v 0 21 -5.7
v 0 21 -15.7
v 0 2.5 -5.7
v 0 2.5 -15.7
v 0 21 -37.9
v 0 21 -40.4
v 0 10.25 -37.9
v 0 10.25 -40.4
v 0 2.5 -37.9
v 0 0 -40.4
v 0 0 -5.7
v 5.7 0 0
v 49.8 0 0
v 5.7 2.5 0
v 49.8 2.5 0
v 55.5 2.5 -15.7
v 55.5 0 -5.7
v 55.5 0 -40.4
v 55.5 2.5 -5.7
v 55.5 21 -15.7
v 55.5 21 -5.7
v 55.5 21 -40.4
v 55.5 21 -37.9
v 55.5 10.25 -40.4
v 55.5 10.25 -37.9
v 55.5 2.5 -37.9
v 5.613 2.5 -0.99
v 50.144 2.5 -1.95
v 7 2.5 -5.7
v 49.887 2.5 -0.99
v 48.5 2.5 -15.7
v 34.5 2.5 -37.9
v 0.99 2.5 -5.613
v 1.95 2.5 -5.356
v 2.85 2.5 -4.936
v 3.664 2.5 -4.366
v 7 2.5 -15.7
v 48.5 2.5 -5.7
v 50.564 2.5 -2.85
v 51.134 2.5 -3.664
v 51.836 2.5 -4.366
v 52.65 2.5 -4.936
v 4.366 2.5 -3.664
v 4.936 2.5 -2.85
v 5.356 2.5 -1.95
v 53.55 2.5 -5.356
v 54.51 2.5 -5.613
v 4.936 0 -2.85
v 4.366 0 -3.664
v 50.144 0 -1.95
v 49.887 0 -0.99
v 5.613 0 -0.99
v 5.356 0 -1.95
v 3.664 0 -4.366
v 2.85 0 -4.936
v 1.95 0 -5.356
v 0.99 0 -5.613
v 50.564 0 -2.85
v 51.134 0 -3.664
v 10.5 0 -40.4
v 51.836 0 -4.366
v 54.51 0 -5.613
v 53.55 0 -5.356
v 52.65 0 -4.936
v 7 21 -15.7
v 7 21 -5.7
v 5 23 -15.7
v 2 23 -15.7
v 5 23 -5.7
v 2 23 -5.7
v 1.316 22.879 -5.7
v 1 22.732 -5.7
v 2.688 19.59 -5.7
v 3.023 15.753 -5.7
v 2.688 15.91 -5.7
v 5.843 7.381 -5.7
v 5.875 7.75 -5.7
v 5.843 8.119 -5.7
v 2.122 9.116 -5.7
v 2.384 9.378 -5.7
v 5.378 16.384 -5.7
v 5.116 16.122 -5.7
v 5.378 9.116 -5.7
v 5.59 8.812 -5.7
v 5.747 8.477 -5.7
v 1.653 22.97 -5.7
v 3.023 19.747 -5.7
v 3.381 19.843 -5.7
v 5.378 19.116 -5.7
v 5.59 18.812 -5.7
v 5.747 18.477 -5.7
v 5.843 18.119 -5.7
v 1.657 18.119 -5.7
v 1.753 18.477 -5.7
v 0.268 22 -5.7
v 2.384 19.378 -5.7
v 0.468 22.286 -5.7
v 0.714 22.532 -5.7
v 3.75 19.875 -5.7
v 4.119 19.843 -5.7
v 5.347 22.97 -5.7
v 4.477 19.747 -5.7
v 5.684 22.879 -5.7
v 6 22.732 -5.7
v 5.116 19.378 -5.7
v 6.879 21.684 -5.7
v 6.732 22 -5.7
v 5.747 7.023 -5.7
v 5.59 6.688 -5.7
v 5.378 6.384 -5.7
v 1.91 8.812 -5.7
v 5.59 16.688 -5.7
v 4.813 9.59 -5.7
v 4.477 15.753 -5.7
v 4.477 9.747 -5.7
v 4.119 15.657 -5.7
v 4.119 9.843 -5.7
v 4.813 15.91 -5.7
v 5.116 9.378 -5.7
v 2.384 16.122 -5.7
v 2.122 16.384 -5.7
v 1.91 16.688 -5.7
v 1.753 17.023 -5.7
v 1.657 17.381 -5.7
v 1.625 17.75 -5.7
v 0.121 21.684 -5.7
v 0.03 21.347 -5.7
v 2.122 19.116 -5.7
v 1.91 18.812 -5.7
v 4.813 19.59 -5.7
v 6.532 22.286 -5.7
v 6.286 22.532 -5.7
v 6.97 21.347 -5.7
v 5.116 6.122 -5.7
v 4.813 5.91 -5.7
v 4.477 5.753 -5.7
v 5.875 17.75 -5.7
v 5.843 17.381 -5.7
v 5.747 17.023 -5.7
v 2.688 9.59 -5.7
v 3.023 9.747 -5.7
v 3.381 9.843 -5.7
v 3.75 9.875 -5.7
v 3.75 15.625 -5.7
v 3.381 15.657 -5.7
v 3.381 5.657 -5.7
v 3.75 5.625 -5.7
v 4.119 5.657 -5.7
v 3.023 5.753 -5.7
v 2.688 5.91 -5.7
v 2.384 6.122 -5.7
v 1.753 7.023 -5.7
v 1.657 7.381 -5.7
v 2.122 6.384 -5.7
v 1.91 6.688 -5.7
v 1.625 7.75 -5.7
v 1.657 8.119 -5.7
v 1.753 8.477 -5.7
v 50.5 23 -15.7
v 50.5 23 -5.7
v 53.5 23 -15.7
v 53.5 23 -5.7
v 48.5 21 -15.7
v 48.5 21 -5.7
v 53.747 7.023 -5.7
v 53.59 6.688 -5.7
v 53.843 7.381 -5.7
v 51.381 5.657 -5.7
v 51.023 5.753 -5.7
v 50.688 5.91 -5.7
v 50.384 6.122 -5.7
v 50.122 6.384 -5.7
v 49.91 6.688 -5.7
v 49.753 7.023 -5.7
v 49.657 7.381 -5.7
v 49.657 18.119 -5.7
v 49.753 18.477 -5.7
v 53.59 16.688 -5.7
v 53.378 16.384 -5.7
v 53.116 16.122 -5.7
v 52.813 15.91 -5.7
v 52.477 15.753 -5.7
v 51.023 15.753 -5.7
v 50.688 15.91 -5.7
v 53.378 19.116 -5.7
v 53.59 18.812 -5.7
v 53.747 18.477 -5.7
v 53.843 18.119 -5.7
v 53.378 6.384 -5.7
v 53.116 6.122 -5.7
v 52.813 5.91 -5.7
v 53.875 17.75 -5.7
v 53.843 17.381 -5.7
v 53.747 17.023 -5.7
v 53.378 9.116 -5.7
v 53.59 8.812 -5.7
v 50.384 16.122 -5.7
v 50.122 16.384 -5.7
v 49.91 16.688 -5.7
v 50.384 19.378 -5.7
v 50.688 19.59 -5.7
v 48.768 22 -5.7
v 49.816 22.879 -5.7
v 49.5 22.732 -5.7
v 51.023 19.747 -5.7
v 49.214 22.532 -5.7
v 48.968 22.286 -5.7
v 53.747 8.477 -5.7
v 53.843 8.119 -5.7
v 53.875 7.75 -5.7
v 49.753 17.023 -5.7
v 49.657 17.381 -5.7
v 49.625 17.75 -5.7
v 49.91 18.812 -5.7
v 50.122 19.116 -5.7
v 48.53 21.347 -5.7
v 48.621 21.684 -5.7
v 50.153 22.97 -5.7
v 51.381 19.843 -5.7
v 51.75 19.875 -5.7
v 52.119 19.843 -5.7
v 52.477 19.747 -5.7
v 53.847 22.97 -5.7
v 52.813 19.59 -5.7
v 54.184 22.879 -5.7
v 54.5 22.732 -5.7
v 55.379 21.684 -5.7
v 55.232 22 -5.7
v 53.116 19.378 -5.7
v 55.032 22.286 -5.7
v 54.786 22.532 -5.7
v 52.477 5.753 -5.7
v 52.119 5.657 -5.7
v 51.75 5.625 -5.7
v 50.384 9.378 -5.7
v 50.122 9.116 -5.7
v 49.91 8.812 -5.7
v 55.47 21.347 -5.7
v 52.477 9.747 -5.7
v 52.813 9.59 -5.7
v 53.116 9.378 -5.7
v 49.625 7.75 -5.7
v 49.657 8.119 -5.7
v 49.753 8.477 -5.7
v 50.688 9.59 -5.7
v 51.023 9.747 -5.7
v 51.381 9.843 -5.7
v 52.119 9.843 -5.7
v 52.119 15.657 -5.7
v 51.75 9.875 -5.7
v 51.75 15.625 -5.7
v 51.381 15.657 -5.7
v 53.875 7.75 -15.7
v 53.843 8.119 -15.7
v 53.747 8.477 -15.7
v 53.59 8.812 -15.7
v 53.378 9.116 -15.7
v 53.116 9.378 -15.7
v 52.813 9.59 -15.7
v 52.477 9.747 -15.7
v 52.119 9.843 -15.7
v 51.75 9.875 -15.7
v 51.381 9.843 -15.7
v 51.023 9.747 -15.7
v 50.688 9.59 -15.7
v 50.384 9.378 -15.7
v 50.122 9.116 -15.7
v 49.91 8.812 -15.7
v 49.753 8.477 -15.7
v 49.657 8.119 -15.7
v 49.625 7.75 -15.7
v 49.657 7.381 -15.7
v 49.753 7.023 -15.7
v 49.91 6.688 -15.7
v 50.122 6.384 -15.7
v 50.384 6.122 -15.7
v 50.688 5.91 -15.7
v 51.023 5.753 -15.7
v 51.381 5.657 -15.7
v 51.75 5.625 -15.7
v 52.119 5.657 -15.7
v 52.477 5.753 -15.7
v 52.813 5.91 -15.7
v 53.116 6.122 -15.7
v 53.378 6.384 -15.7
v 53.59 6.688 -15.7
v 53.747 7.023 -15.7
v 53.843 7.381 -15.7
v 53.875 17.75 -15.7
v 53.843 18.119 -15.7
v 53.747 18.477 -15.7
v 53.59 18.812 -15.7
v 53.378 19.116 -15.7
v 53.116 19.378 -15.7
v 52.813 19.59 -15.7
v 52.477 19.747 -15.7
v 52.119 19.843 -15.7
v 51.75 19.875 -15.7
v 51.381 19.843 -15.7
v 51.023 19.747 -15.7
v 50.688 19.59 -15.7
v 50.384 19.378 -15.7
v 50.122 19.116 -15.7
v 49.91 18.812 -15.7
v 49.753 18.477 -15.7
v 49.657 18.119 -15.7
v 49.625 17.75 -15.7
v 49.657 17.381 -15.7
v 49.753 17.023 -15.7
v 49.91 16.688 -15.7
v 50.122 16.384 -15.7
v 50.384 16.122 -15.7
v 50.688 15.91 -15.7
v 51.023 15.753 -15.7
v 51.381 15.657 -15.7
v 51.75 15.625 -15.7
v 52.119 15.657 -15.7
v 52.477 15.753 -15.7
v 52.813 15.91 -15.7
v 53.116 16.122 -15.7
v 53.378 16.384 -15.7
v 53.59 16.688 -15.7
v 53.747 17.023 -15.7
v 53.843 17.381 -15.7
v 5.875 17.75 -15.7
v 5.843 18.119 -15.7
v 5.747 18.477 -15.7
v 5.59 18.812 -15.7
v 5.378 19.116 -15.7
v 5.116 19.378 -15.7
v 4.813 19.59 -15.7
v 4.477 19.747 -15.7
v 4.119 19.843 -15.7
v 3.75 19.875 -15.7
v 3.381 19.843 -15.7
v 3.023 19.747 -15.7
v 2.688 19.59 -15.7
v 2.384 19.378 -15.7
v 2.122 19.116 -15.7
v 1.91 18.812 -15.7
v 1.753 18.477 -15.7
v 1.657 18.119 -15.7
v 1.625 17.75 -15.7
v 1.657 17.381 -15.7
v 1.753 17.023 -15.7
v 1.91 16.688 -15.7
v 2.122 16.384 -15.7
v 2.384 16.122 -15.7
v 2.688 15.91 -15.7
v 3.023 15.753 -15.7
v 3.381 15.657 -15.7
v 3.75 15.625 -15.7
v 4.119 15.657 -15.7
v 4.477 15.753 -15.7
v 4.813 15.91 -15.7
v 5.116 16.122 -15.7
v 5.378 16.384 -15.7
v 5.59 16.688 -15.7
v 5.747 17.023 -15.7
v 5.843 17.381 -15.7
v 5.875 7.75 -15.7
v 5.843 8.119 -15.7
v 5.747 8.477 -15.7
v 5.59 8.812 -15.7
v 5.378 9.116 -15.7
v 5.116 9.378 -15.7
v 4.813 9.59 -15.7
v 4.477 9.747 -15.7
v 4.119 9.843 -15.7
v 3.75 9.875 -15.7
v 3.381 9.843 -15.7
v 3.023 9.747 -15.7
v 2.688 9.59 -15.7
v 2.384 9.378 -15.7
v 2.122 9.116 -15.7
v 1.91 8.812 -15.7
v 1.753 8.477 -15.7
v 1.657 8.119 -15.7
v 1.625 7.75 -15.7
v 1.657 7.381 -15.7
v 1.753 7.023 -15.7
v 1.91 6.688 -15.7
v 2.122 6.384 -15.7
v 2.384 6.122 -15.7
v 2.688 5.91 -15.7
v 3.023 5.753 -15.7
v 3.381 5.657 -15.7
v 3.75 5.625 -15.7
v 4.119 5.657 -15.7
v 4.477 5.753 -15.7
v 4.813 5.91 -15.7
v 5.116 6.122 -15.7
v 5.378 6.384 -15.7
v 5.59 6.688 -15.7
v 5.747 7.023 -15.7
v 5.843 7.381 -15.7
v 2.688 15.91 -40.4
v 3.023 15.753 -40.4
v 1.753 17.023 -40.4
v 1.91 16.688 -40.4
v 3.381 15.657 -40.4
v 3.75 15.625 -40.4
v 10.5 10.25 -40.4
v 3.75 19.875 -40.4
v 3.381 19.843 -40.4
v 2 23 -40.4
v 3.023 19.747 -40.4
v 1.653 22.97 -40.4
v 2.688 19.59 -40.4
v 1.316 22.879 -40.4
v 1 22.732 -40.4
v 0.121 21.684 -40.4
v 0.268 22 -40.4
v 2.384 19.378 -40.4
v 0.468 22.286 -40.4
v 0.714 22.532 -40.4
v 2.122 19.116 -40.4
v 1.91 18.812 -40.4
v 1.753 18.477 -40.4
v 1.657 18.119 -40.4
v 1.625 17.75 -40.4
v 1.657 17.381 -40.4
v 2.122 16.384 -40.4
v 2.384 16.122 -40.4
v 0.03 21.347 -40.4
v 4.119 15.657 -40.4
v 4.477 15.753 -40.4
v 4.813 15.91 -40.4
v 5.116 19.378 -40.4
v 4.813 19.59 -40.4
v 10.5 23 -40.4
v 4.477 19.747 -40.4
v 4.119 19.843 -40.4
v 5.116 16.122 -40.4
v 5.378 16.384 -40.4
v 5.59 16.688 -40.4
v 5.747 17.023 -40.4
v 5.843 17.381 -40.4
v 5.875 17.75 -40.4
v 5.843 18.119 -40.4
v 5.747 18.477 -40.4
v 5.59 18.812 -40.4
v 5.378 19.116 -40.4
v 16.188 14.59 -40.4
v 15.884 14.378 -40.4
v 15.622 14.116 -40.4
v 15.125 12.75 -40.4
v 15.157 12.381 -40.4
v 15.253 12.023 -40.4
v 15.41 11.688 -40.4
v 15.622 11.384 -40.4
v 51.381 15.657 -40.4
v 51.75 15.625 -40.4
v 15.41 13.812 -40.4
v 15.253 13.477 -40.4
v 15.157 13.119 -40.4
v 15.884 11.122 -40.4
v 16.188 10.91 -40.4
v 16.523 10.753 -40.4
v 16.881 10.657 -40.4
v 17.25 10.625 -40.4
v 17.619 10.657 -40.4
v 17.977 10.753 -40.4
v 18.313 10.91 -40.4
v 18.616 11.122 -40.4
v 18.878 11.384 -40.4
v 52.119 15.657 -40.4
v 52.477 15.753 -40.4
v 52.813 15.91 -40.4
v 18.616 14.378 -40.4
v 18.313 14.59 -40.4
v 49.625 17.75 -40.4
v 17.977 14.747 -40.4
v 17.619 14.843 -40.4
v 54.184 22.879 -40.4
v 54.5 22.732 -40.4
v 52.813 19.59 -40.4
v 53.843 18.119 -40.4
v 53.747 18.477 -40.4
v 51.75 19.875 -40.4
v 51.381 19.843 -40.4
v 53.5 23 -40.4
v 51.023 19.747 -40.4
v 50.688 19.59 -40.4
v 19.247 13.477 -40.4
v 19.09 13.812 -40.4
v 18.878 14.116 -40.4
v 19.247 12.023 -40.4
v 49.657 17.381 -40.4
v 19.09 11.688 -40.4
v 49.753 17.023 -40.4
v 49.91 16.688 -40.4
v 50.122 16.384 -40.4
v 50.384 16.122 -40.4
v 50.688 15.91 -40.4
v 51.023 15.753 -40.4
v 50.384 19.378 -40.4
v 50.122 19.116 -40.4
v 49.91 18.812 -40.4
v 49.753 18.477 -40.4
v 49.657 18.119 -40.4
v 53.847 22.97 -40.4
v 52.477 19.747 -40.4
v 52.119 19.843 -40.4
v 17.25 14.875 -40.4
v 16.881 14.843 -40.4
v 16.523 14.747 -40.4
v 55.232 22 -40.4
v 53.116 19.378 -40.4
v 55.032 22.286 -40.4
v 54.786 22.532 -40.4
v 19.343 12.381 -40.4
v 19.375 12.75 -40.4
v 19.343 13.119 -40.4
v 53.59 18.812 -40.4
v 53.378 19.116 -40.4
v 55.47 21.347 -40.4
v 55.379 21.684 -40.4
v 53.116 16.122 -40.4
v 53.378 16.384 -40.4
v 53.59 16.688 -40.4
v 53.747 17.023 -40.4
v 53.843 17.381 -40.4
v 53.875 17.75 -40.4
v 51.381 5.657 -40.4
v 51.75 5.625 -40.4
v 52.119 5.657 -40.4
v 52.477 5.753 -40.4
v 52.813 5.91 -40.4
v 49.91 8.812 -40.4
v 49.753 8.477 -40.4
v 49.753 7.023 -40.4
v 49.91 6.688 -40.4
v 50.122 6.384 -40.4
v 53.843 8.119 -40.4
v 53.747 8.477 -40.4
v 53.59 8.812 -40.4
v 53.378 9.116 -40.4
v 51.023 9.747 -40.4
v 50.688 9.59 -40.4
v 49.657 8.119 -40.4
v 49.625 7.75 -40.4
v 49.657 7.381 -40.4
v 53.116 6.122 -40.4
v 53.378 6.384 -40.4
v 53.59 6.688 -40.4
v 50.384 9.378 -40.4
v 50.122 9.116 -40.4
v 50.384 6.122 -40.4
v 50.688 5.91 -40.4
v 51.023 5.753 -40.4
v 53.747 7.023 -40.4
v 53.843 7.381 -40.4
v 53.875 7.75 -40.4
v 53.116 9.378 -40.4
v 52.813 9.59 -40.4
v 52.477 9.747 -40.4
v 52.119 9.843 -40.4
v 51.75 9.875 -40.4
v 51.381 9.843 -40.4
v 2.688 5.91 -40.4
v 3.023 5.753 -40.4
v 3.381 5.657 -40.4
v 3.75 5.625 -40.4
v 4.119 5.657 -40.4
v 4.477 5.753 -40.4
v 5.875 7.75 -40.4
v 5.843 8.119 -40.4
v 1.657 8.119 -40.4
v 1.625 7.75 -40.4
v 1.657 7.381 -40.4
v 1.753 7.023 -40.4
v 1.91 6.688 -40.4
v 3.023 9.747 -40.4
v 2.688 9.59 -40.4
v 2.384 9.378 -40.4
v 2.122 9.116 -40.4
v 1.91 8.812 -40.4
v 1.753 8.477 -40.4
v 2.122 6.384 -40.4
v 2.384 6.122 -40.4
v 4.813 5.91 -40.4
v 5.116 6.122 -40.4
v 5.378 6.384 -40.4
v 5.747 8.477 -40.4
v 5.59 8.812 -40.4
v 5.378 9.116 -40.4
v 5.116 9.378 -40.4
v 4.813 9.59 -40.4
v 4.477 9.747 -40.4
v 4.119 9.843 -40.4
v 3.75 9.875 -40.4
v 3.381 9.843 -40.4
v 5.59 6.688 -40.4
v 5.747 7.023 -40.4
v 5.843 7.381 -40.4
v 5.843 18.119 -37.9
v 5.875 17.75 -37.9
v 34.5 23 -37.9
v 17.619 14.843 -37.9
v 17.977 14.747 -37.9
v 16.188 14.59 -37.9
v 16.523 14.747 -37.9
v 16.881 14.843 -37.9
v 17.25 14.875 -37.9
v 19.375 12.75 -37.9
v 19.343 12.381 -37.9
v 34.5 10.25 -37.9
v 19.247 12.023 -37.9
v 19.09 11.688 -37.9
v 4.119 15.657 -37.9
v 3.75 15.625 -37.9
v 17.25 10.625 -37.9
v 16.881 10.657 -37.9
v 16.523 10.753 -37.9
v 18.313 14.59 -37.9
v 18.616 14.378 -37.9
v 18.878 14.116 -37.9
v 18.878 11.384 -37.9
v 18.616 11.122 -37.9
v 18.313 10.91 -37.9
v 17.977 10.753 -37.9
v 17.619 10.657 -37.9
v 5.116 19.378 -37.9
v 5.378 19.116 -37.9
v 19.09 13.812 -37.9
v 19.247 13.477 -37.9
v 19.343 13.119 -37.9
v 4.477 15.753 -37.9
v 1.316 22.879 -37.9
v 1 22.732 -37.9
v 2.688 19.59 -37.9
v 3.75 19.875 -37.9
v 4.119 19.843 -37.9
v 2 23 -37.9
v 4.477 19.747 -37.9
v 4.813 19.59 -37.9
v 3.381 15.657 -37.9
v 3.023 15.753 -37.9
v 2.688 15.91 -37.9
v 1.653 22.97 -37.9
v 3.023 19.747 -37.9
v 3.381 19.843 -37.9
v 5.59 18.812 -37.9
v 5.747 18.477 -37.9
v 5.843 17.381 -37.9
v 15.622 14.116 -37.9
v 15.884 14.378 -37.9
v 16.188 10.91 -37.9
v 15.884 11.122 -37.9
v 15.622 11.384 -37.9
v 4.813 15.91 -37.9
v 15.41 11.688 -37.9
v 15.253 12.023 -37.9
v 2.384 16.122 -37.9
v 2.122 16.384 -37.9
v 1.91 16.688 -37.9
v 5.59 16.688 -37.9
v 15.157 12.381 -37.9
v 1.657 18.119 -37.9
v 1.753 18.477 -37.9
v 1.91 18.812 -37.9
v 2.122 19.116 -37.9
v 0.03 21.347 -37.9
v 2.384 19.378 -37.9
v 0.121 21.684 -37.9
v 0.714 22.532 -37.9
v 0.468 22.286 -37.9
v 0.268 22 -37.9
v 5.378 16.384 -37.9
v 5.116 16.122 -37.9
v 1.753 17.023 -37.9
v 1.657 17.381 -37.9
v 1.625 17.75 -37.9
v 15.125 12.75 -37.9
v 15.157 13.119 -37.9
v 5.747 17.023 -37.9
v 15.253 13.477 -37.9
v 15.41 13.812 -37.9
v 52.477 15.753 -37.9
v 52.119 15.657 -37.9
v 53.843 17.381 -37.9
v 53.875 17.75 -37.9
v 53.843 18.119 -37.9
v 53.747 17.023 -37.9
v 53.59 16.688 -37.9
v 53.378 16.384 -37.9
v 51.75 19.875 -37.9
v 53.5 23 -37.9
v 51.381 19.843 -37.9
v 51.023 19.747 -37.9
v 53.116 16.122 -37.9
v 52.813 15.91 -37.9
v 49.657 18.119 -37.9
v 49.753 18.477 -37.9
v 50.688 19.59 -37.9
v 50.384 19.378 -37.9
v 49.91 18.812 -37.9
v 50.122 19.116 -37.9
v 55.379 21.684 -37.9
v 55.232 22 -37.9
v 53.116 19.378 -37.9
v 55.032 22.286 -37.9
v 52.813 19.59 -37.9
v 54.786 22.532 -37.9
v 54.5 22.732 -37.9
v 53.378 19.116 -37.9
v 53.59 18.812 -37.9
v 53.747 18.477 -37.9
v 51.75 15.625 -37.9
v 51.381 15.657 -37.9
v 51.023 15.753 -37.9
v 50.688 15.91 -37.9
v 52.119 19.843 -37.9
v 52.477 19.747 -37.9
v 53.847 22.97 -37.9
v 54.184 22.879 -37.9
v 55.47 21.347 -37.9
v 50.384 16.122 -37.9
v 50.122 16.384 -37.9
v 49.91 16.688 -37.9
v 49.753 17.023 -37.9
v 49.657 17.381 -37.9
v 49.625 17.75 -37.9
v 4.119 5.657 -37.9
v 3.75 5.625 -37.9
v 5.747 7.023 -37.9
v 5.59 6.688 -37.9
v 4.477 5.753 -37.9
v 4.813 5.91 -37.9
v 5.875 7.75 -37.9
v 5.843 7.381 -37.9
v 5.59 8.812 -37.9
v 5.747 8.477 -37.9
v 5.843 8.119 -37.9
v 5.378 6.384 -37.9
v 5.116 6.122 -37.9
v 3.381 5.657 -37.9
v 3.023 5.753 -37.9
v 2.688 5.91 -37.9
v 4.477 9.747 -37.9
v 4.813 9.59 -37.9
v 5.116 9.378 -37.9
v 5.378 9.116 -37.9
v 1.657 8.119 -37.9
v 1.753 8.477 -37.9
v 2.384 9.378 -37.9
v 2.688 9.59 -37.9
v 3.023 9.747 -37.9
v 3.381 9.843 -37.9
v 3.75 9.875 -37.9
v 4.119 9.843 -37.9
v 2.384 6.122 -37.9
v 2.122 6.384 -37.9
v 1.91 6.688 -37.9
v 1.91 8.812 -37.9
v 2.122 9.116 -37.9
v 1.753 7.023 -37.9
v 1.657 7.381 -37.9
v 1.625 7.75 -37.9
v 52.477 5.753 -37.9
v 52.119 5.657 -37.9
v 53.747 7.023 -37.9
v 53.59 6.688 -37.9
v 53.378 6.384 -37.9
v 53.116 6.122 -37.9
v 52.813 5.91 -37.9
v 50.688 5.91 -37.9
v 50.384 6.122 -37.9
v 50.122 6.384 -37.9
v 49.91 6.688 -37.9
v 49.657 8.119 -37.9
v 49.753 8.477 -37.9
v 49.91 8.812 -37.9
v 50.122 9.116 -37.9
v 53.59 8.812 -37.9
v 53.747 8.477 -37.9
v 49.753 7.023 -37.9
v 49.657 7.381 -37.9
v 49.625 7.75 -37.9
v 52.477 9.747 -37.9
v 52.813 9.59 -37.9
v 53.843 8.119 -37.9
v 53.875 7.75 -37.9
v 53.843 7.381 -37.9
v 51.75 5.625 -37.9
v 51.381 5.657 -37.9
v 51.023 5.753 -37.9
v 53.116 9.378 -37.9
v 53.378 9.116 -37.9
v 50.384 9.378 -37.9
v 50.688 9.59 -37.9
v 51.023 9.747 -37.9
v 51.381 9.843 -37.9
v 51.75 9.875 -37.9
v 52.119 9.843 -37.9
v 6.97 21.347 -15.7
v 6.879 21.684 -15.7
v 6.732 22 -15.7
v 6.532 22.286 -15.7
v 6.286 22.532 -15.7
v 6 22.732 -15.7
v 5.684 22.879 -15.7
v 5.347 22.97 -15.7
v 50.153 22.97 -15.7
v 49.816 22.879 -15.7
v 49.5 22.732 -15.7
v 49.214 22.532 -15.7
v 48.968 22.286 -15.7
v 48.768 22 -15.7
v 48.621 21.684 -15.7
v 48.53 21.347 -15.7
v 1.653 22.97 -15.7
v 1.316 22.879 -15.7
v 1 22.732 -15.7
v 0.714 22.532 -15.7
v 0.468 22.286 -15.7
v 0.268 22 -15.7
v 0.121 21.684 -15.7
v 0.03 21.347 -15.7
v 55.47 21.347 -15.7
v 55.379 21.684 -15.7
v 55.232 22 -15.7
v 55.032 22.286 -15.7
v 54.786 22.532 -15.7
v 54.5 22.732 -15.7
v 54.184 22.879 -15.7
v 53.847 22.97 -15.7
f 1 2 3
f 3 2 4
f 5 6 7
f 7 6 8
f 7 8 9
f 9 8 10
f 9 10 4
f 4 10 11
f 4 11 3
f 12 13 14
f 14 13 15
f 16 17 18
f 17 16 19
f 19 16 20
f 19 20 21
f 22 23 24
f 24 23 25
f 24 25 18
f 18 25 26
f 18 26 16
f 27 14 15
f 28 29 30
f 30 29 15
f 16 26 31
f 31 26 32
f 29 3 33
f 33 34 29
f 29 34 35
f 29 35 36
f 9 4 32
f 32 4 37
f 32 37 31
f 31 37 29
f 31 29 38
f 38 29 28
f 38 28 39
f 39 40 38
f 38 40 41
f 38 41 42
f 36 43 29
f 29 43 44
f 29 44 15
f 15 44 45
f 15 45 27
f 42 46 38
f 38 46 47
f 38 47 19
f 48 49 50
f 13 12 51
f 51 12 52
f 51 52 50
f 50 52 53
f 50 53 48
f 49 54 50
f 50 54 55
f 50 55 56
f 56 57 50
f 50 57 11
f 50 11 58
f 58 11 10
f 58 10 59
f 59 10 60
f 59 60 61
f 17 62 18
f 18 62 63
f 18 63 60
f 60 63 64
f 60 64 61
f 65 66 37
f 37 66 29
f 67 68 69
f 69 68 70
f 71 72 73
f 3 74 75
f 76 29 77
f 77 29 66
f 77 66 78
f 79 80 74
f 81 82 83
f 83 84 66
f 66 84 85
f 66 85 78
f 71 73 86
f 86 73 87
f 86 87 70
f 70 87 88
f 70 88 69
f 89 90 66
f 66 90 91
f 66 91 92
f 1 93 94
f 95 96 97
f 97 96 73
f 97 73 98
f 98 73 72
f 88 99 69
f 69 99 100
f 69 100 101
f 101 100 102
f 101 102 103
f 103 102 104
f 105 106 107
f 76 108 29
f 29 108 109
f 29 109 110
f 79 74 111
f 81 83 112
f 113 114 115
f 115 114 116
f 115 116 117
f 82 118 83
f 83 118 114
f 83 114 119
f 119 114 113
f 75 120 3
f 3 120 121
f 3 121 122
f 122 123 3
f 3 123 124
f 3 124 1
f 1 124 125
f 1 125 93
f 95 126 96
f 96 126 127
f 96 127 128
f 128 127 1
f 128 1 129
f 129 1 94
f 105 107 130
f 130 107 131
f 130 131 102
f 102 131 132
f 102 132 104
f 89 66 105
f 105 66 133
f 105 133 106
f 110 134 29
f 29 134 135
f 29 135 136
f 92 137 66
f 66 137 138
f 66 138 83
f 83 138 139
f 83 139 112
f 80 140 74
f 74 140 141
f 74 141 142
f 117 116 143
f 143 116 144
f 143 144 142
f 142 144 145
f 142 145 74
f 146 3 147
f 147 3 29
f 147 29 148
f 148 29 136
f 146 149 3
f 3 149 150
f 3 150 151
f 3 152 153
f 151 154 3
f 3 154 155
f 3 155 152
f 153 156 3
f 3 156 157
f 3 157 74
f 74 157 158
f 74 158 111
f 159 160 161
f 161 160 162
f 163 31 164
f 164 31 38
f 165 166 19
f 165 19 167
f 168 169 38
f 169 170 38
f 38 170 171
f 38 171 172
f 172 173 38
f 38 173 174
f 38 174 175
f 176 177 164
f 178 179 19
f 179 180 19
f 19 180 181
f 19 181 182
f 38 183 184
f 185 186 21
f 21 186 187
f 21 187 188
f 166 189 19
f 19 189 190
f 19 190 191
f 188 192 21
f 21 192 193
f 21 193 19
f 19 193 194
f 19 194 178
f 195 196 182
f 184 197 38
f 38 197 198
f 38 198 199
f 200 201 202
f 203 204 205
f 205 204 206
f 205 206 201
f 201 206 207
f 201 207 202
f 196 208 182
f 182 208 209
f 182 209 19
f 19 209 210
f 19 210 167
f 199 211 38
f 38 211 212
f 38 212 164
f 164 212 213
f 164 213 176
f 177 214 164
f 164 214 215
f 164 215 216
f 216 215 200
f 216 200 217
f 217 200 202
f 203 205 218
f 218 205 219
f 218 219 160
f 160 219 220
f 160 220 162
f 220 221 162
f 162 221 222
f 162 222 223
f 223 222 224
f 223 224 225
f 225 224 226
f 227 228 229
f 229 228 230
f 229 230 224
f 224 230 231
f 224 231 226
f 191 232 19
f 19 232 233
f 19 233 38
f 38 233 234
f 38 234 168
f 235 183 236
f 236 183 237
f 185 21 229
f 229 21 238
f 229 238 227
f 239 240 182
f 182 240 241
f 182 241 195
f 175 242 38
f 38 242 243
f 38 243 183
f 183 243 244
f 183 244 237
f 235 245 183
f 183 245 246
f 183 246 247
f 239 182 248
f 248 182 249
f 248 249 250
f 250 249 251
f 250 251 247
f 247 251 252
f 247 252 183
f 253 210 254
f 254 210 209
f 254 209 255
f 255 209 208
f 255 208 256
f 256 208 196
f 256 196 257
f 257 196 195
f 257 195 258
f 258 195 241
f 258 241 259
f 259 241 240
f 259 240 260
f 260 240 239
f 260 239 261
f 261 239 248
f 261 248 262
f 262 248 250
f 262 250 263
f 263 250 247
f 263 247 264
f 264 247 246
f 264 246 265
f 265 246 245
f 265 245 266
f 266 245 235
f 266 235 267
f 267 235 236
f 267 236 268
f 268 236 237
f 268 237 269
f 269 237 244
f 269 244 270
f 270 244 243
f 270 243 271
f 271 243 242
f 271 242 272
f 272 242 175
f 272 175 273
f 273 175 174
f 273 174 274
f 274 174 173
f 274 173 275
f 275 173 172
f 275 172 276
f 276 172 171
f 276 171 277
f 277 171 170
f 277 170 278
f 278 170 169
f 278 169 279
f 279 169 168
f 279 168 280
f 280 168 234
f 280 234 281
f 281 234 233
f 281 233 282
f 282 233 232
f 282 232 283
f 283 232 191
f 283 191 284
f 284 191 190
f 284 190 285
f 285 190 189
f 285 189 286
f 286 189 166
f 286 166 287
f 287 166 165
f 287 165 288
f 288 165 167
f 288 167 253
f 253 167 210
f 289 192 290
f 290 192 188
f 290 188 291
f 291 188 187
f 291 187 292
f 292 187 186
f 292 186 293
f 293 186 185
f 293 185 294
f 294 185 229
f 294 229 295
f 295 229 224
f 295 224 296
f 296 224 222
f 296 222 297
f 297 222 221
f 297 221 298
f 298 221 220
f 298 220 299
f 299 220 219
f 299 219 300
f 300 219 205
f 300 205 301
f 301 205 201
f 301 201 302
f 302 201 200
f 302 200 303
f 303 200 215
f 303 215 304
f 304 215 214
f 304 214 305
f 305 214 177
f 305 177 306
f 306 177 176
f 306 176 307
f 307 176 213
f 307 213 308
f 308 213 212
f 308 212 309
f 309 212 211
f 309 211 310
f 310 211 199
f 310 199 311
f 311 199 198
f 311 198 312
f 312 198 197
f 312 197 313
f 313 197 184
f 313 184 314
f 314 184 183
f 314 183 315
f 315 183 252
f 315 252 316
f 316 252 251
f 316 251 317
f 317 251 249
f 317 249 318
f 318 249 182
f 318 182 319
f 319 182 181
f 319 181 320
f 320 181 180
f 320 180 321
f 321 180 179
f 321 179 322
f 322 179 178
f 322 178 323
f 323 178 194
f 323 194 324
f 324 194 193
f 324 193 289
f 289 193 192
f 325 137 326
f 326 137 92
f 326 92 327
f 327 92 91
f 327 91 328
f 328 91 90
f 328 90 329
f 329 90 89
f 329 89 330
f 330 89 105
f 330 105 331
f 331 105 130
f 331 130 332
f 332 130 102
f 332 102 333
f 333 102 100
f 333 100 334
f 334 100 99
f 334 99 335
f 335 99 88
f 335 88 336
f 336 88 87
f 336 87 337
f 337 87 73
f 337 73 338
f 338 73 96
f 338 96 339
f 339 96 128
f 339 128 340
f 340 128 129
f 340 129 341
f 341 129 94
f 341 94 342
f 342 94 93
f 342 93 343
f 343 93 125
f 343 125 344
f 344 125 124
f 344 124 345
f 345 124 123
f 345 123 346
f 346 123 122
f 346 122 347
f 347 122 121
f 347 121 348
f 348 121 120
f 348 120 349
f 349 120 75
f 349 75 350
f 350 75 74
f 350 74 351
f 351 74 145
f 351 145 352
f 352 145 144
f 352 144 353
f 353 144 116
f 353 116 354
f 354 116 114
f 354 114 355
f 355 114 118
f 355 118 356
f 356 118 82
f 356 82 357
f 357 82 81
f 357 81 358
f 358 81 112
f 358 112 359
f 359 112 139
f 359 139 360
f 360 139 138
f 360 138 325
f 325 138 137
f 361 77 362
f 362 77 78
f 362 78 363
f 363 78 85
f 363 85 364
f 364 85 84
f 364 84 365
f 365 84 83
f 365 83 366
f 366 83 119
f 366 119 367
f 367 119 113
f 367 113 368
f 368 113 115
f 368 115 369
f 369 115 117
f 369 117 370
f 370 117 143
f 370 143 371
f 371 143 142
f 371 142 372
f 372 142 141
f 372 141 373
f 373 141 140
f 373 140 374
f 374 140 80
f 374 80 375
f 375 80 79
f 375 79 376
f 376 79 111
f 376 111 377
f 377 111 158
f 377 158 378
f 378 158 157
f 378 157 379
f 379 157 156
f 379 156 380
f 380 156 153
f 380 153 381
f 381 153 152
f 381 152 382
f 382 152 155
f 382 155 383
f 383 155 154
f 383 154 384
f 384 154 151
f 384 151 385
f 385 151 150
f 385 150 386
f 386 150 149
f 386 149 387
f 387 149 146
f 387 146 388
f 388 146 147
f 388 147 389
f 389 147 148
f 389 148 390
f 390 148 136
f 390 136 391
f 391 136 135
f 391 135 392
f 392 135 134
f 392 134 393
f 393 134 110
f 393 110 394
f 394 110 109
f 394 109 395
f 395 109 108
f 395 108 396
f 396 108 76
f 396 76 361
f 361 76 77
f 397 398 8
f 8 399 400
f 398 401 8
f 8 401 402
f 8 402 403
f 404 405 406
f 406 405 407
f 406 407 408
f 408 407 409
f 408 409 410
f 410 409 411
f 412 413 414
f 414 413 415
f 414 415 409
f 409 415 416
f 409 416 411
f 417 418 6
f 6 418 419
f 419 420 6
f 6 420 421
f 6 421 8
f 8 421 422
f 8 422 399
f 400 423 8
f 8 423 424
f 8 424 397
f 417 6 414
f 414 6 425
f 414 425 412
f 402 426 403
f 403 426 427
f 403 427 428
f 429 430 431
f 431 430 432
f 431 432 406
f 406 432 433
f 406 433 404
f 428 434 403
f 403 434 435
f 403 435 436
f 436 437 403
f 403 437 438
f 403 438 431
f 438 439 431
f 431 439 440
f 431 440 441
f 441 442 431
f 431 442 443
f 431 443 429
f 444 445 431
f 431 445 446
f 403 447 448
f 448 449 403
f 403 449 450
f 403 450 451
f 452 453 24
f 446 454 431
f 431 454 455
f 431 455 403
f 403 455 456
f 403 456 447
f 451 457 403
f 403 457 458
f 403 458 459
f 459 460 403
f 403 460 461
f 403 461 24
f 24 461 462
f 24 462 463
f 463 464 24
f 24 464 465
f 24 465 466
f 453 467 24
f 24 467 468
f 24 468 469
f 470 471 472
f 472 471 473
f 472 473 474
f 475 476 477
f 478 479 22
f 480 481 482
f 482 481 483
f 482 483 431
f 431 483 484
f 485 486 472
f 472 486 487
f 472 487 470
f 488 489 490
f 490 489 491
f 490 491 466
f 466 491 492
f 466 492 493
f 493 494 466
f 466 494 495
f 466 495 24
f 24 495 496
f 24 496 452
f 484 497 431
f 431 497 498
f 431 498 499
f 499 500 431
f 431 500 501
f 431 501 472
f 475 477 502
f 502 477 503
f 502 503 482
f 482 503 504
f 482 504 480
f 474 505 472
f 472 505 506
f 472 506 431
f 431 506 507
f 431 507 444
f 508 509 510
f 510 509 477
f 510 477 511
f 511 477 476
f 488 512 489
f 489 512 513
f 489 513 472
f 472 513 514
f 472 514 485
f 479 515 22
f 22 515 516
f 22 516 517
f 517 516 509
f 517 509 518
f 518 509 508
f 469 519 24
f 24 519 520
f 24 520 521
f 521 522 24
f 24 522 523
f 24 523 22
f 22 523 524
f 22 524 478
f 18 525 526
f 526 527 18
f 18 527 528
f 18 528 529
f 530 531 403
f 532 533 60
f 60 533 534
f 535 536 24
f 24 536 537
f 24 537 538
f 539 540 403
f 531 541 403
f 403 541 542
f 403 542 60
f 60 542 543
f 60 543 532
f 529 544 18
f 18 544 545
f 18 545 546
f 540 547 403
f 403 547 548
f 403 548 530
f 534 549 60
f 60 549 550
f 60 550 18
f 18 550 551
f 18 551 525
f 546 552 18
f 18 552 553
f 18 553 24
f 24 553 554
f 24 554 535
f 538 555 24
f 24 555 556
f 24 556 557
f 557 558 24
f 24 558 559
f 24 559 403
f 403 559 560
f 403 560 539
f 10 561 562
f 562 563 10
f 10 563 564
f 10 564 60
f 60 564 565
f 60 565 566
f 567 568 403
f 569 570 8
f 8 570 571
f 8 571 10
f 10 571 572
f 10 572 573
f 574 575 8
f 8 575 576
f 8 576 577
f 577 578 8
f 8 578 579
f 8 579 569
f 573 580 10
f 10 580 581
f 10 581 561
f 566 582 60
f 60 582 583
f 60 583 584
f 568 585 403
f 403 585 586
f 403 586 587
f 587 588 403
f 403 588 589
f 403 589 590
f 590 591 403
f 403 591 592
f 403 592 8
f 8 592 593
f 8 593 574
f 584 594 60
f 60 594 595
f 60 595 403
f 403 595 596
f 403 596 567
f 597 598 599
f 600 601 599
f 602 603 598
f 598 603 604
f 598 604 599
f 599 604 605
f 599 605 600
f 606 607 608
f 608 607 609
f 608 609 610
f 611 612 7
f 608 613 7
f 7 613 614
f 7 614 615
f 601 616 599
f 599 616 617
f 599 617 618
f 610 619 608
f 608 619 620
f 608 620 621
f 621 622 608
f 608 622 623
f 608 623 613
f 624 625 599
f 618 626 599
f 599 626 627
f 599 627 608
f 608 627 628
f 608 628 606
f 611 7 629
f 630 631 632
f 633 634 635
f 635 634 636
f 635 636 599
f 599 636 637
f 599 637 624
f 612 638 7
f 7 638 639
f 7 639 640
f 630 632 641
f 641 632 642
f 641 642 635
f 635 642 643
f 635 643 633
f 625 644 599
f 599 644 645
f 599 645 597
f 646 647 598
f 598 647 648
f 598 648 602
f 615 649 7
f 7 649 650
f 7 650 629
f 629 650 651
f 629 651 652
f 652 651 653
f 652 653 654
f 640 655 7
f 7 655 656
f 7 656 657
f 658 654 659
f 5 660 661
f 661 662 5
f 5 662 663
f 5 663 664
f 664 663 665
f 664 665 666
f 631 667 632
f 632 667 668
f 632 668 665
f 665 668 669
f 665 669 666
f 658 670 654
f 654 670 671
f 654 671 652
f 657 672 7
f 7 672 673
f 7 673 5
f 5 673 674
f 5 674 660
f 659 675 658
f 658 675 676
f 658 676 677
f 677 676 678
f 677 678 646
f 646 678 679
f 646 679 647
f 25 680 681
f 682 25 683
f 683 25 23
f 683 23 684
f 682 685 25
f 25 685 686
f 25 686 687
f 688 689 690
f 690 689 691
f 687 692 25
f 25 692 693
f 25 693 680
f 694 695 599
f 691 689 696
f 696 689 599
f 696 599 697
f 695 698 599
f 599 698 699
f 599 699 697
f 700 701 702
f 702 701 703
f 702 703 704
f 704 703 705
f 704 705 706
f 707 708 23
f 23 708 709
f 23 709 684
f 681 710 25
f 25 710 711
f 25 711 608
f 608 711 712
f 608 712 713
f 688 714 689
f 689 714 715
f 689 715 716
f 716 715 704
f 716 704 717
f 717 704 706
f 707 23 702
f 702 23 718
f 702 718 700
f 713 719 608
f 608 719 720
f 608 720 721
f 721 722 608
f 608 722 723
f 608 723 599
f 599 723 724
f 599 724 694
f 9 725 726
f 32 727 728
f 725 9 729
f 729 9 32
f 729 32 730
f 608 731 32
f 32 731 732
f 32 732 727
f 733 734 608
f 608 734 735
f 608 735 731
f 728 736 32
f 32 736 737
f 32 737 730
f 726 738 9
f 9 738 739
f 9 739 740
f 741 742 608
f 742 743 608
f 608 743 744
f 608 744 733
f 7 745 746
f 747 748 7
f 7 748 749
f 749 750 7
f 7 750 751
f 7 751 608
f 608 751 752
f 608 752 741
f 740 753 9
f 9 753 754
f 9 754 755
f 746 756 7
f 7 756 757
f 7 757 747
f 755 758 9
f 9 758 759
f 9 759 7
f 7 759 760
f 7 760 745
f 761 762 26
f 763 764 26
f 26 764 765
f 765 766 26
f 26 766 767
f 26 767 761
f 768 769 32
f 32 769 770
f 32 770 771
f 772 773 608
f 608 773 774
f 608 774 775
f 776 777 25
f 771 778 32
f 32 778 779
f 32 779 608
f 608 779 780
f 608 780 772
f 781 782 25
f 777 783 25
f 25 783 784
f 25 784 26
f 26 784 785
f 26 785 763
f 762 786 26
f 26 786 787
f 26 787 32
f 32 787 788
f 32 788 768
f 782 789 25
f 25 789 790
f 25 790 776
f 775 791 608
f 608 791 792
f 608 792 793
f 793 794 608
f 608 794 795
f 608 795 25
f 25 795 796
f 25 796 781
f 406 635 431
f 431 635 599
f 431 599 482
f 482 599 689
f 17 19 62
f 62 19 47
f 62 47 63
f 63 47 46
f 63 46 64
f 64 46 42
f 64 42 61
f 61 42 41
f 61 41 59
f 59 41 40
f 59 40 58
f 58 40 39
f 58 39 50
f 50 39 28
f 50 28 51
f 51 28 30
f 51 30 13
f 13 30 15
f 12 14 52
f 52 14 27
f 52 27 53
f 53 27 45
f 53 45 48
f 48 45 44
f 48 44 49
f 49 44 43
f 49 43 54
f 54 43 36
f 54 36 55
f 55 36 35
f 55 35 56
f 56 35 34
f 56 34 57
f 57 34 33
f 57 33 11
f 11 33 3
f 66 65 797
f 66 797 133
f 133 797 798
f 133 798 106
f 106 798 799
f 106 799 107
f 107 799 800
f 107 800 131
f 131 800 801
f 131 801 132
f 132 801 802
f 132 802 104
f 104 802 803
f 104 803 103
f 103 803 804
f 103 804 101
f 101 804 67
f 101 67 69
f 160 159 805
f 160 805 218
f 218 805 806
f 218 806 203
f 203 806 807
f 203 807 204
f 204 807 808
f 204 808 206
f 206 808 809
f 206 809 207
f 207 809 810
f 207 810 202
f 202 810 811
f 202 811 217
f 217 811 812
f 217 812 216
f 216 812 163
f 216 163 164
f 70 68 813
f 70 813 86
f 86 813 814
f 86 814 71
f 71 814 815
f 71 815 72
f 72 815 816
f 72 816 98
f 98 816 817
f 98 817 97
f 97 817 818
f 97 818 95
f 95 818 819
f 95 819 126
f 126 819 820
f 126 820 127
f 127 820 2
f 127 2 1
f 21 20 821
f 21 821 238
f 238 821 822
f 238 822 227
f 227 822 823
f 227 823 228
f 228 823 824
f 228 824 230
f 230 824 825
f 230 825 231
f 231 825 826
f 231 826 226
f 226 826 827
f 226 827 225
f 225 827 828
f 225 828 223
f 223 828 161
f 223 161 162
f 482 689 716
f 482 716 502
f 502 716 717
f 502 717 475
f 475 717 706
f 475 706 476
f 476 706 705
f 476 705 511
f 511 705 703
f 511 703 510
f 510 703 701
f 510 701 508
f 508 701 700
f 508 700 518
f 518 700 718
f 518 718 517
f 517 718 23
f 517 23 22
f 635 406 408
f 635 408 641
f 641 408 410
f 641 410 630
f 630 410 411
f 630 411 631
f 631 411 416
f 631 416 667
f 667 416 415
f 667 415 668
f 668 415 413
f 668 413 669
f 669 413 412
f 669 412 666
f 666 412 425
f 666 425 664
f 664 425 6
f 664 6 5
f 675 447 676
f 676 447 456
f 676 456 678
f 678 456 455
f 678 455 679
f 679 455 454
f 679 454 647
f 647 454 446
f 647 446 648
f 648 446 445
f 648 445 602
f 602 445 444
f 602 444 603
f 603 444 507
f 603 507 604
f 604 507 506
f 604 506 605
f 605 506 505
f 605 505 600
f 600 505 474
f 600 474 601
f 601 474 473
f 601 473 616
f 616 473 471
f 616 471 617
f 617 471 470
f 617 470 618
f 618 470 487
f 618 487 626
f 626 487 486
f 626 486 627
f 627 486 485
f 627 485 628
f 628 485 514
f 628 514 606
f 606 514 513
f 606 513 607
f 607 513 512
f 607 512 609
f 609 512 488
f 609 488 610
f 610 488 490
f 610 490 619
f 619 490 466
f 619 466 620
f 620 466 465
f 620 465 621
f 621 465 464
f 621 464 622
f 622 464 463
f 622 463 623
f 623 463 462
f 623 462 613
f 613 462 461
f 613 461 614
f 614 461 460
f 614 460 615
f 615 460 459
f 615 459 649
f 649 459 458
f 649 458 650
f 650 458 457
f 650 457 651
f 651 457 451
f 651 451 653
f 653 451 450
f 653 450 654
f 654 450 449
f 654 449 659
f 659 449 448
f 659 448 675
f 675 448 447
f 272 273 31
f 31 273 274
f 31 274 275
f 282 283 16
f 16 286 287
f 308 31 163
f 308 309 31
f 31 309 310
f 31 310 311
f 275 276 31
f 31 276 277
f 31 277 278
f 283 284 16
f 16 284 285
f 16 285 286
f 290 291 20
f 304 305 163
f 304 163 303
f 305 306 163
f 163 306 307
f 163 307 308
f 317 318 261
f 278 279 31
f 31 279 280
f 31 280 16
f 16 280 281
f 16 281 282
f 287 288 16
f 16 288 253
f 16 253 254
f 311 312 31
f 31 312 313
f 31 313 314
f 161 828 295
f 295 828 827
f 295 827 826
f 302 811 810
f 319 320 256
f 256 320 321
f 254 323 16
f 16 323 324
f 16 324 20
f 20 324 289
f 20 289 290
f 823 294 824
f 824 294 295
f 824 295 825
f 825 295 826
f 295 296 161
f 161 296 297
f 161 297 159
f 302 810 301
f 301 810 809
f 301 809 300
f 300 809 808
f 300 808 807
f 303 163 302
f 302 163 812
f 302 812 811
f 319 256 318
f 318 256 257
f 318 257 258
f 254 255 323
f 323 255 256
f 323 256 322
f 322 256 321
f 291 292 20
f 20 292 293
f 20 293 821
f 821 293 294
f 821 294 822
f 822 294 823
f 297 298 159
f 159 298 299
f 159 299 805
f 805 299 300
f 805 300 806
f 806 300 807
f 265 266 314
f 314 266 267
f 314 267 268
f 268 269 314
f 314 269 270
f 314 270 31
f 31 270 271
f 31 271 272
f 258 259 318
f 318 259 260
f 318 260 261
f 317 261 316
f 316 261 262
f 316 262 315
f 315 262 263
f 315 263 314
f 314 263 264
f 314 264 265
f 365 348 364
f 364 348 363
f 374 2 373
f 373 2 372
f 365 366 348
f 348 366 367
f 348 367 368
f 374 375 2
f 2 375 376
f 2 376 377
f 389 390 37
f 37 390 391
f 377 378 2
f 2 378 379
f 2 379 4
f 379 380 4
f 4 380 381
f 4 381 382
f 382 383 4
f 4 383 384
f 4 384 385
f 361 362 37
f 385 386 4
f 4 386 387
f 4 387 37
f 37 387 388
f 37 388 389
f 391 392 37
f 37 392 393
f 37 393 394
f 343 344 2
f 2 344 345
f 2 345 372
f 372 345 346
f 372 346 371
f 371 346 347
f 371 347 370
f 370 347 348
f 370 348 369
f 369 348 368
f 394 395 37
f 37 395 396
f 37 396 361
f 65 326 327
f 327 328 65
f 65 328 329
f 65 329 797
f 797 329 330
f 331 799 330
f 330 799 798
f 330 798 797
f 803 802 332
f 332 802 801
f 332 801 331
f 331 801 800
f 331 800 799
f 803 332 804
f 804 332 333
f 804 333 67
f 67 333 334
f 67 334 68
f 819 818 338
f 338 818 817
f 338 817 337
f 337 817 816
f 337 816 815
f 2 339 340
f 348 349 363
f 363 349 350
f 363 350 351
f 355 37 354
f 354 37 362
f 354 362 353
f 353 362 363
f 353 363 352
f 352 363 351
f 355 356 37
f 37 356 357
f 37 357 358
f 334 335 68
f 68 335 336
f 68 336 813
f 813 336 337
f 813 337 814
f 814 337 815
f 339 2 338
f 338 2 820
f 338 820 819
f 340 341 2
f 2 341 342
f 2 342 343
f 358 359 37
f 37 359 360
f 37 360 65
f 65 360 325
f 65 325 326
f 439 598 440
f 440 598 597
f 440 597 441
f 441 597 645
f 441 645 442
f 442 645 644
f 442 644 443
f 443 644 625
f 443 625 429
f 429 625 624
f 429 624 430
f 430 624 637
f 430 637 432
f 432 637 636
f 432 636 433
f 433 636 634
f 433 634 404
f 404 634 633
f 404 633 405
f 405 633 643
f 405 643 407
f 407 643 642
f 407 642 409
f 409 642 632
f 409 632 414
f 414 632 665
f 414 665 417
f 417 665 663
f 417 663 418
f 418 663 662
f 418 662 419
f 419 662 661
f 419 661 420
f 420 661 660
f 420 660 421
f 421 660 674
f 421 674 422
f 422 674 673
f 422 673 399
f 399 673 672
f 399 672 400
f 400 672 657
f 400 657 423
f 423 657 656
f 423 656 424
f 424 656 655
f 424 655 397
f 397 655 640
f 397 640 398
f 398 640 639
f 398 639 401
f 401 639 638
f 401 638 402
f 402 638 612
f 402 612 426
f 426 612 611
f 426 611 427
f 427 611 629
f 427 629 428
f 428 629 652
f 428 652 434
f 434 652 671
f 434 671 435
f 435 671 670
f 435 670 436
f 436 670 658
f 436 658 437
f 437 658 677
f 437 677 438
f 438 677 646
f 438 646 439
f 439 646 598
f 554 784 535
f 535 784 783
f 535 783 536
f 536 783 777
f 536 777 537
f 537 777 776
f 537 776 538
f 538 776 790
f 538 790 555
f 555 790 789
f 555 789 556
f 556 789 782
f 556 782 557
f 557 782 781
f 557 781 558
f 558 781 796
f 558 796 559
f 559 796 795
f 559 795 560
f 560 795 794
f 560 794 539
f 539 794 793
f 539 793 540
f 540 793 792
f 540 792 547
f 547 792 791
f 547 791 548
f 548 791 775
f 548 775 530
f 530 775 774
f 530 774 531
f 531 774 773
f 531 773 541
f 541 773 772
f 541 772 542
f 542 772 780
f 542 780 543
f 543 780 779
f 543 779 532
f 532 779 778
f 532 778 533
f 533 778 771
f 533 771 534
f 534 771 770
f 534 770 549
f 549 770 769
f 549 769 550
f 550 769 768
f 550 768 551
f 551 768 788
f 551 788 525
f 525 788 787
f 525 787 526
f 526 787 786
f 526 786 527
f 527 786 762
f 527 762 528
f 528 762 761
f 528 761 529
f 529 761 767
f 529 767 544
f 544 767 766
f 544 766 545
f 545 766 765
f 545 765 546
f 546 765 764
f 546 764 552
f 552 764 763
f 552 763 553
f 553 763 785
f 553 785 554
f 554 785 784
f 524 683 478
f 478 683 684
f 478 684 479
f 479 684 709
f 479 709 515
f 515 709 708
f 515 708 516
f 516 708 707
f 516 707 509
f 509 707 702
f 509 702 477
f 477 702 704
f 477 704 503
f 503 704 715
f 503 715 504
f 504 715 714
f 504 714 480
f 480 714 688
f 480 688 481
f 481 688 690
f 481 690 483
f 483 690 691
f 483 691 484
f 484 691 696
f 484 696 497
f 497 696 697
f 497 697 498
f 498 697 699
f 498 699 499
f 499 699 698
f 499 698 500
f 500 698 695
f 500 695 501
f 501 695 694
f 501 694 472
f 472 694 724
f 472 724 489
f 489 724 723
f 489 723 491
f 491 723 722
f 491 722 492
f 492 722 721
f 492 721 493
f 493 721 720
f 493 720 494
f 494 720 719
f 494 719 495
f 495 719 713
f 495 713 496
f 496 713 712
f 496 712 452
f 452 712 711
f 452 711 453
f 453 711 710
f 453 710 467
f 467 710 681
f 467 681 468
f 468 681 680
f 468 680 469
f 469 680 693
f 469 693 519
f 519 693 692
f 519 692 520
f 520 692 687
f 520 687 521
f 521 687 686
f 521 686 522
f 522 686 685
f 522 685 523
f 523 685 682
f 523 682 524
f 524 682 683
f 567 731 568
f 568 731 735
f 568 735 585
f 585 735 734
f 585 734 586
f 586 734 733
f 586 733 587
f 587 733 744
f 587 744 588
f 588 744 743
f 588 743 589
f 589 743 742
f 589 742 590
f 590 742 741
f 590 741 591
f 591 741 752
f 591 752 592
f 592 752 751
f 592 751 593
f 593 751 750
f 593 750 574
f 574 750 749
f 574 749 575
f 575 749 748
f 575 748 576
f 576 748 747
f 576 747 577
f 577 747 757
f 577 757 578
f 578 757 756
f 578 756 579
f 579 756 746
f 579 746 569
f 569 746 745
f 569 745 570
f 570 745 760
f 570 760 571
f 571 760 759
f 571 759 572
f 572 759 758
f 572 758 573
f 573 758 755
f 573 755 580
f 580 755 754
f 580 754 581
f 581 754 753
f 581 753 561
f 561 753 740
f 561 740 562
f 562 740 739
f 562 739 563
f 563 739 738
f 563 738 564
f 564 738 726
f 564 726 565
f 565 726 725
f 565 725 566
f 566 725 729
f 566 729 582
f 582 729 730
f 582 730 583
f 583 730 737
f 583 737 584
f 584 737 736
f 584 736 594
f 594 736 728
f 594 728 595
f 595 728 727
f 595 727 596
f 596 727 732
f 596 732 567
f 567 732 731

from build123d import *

# Parameters (mm, degrees)
SKETCH1_W                   = 55.5
SKETCH1_H                   = 37.9
BRACKETBASE_DEPTH           = 2.5
SKETCH2_W                   = 7
SKETCH2_H                   = 20.5
SERVOMOUNTINGHOLETABS_DEPTH = 2.5
SKETCH3_R                   = 2.125
SERVOMOUNTINGHOLES_DEPTH    = 2.5
SKETCH4_W                   = 55.5
SKETCH4_H                   = 2.5
BASEWALL_DEPTH              = 23
SKETCH6_R                   = 5.7
BASETRIM_DEPTH              = 2.5
FILLET1_R                   = 2
SKETCH7_R                   = 2.125
M4MOUNTINGHOLE_DEPTH        = 10
SKETCH8_R                   = 2.125
BOSS_EXTRUDE1_DEPTH         = 7.5
SKETCH9_R                   = 2.125
CUT_EXTRUDE1_DEPTH          = 70.378238663


with BuildPart() as part:
    # Sketch1 → bracketBase (new body)
    with BuildSketch(Plane(origin=(0, 0, 0), x_dir=(1, 0, 0), z_dir=(0, 1, 0))):
        with Locations((27.75, 18.95)):
            Rectangle(SKETCH1_W, SKETCH1_H)
    extrude(amount=BRACKETBASE_DEPTH)

    # Sketch2 → servoMountingHoleTabs (add)
    with BuildSketch(Plane.XY.offset(-8.2)):
        with Locations((3.5, 12.75)):
            Rectangle(SKETCH2_W, SKETCH2_H)
        with Locations((52, 12.75)):
            Rectangle(SKETCH2_W, SKETCH2_H)
    extrude(amount=SERVOMOUNTINGHOLETABS_DEPTH)

    # Sketch3 → servoMountingHoles (cut)
    with BuildSketch(Plane.XY.offset(-5.7)):
        with Locations((3.75, 17.75)):
            Circle(SKETCH3_R)
        with Locations(Location((3.75, 7.75, 0), (0, 0, 180))):
            Circle(SKETCH3_R)
        with Locations((51.75, 7.75)):
            Circle(SKETCH3_R)
        with Locations(Location((51.75, 17.75, 0), (0, 0, 180))):
            Circle(SKETCH3_R)
    extrude(amount=-SERVOMOUNTINGHOLES_DEPTH, mode=Mode.SUBTRACT)

    # Sketch4 → baseWall (add)
    with BuildSketch(Plane(origin=(0, 0, 0), x_dir=(1, 0, 0), z_dir=(0, 1, 0))):
        with Locations((27.75, 39.15)):
            Rectangle(SKETCH4_W, SKETCH4_H)
    extrude(amount=BASEWALL_DEPTH)

    # Sketch6 → baseTrim (cut)
    with BuildSketch(Plane(origin=(0, 2.5, 0), x_dir=(1, 0, 0), z_dir=(0, 1, 0))):
        Circle(SKETCH6_R)
        with Locations((55.5, 0)):
            Circle(SKETCH6_R)
    extrude(amount=-BASETRIM_DEPTH, mode=Mode.SUBTRACT)

    # Fillet1
    fillet1_edges = [part.edges().sort_by_distance(p)[0] for p in [
        (0, 23, -6.95),
        (7, 23, -6.95),
        (55.5, 23, -6.95),
        (48.5, 23, -6.95),
        (55.5, 23, -39.15),
        (0, 23, -39.15),
    ]]
    fillet(fillet1_edges, radius=FILLET1_R)

    # Sketch7 → M4mountingHole (cut)
    with BuildSketch(Plane(origin=(0, 0, -40.4), x_dir=(-1, 0, 0), z_dir=(0, 0, -1))):
        with Locations((-17.25, 12.75)):
            Circle(SKETCH7_R)
    extrude(amount=-M4MOUNTINGHOLE_DEPTH, mode=Mode.SUBTRACT)

    # Sketch8 → Boss-Extrude1 (add)
    # profile 1 of 2: a face of its own
    with BuildSketch(Plane(origin=(0, 0, -8.2), x_dir=(-1, 0, 0), z_dir=(0, 0, -1))):
        with BuildLine():
            Line((-48.5, 2.5), (-48.5, 21))
            ThreePointArc((-48.5, 21), (-49.085786438, 22.414213562), (-50.5, 23))
            Line((-50.5, 23), (-53.5, 23))
            ThreePointArc((-53.5, 23), (-54.914213562, 22.414213562), (-55.5, 21))
            Line((-55.5, 21), (-55.5, 2.5))
            Line((-55.5, 2.5), (-48.5, 2.5))
        make_face()
        with Locations((-51.75, 17.75)):
            Circle(SKETCH8_R, mode=Mode.SUBTRACT)
        with Locations(Location((-51.75, 7.75, 0), (0, 0, 180))):
            Circle(SKETCH8_R, mode=Mode.SUBTRACT)
    # profile 2 of 2: a face of its own
    with BuildSketch(Plane(origin=(0, 0, -8.2), x_dir=(-1, 0, 0), z_dir=(0, 0, -1))):
        with BuildLine():
            Line((-2, 23), (-5, 23))
            ThreePointArc((-5, 23), (-6.414213562, 22.414213562), (-7, 21))
            Line((-7, 21), (-7, 2.5))
            Line((-7, 2.5), (0, 2.5))
            Line((0, 2.5), (0, 21))
            ThreePointArc((0, 21), (-0.585786438, 22.414213562), (-2, 23))
        make_face()
        with Locations(Location((-3.75, 17.75, 0), (0, 0, 180))):
            Circle(SKETCH8_R, mode=Mode.SUBTRACT)
        with Locations((-3.75, 7.75)):
            Circle(SKETCH8_R, mode=Mode.SUBTRACT)
    extrude(amount=BOSS_EXTRUDE1_DEPTH)

    # Sketch9 → Cut-Extrude1 (cut, through all)
    with BuildSketch(Plane.XY.offset(-5.7)):
        with Locations((3.75, 17.75)):
            Circle(SKETCH9_R)
        with Locations(Location((3.75, 7.75, 0), (0, 0, 180))):
            Circle(SKETCH9_R)
        with Locations(Location((51.75, 17.75, 0), (0, 0, 180))):
            Circle(SKETCH9_R)
        with Locations((51.75, 7.75)):
            Circle(SKETCH9_R)
    extrude(amount=-CUT_EXTRUDE1_DEPTH, mode=Mode.SUBTRACT)


solid = part.part
